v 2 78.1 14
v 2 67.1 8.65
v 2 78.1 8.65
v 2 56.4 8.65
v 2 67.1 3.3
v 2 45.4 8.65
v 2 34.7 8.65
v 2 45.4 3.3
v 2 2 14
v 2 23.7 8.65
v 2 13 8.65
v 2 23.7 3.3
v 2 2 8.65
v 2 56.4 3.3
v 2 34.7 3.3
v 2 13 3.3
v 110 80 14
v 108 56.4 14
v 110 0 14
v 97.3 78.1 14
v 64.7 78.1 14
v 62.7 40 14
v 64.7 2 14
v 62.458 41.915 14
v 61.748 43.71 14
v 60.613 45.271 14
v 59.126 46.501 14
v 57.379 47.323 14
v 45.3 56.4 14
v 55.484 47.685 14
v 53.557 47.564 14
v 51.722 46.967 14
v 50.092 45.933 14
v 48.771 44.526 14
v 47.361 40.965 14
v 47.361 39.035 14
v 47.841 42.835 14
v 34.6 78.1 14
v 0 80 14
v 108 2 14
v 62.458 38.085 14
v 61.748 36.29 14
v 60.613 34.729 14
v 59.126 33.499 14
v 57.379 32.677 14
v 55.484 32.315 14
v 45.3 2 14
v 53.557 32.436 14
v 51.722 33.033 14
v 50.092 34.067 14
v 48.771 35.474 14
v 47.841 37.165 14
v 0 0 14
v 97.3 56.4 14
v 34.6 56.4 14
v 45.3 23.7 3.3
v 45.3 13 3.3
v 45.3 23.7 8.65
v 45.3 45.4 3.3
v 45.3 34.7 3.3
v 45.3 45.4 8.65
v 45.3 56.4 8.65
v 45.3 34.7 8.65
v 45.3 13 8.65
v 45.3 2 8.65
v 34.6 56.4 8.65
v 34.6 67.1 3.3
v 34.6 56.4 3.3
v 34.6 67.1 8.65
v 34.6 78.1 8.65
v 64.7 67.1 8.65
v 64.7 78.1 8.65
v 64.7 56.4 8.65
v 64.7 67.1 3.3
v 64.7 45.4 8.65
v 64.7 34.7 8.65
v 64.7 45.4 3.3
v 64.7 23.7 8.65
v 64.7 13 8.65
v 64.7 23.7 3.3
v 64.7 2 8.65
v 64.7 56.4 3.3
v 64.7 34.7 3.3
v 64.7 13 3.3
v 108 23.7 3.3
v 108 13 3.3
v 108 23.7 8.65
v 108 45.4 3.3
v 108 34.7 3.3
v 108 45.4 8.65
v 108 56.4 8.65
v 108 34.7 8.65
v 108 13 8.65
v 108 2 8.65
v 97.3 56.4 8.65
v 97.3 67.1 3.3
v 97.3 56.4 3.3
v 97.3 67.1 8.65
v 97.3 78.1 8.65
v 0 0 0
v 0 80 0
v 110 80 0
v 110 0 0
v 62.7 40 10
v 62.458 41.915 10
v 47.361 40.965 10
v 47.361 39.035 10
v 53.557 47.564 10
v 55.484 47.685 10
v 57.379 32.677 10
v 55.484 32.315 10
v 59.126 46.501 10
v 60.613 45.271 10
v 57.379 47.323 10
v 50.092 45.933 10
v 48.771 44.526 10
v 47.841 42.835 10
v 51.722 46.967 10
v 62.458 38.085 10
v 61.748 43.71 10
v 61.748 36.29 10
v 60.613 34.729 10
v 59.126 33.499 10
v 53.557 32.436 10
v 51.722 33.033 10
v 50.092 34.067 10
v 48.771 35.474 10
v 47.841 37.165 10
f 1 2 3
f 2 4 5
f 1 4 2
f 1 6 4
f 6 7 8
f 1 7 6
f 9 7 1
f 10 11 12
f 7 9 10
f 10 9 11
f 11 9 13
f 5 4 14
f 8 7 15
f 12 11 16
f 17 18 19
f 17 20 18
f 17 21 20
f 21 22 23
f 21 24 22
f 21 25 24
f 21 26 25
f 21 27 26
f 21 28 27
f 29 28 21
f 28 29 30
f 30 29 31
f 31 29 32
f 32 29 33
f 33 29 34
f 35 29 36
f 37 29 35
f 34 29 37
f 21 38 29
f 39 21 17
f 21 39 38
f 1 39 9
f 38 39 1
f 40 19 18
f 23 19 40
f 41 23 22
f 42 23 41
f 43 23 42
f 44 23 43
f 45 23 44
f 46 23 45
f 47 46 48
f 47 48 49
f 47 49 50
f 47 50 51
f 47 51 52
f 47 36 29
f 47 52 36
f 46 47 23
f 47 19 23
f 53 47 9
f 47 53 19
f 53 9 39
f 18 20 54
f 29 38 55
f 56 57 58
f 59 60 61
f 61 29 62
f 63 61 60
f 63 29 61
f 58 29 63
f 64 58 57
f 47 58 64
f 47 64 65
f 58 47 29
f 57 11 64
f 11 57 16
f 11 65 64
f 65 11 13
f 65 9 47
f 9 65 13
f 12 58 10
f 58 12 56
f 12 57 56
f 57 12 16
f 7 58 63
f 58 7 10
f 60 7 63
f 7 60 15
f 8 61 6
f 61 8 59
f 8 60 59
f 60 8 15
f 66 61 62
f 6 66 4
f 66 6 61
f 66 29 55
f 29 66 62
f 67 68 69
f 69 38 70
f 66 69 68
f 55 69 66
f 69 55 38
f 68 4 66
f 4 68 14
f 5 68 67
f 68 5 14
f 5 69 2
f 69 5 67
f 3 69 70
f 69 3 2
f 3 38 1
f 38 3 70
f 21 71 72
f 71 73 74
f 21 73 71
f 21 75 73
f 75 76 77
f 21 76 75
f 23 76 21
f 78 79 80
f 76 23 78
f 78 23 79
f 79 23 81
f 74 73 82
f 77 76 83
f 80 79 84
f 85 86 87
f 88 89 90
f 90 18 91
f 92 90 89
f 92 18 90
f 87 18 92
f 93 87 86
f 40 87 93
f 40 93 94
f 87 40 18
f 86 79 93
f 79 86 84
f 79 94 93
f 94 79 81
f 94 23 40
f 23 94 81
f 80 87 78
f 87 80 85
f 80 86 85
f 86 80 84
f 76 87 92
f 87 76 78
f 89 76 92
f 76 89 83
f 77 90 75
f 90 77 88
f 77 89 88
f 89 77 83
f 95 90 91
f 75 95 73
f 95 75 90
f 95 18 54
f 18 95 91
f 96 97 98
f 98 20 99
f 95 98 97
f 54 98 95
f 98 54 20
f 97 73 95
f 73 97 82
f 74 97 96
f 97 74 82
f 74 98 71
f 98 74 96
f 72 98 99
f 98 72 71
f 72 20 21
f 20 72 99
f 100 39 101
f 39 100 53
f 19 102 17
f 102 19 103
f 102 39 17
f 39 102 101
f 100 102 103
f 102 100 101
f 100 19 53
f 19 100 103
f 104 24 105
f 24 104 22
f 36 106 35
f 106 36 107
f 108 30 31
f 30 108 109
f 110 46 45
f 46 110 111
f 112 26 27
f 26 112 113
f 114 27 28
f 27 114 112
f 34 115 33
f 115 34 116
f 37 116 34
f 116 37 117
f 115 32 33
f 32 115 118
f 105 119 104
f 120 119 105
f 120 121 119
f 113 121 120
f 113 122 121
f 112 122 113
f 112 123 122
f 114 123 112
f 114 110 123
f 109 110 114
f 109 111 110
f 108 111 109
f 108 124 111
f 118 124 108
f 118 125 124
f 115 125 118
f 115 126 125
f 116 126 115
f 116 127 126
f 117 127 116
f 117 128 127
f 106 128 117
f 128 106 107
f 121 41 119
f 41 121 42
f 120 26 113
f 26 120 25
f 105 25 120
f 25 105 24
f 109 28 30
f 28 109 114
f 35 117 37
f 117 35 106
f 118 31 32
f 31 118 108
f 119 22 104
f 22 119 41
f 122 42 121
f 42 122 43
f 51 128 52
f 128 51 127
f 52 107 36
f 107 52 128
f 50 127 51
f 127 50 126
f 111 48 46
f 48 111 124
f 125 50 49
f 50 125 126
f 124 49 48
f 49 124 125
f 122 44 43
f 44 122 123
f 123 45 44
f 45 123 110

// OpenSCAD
length = 110;
width = 80;
height = 14;
magnetPadding = 15;
magnetBaseInnerDiameter = 15.4;
magnetHeight = 4.0;



woodenCubeSide = 10.2 + .5;
woodenCubeBoxHeight = woodenCubeSide;
woodenCubeBoxWidth = woodenCubeSide;

wallThickness = 2;

fingerNotchSize = 11;
woodenCubeCount = 4;
woodenCubeBoxLength = woodenCubeSide * woodenCubeCount + .5;

shortWoodenCubeCount = 3;
shortWoodenCubeBoxLength = woodenCubeSide * shortWoodenCubeCount + .5;

        
        

    difference(){
        cube([length, width, height]);  
        translate([wallThickness, wallThickness, 0])
            WoodenCubeBoxes();
        translate([length - (wallThickness + woodenCubeBoxLength), wallThickness, 0])
            WoodenCubeBoxes();

        //magnet
        translate([
            length/2,
            width/2,
            height - magnetHeight])
            cylinder(magnetHeight, d=magnetBaseInnerDiameter);


    }
    
module WoodenCubeBoxes()
{
    translate([0,0, 0])
    {
        WoodenCubeBox();
    }
    translate([0,fingerNotchSize + woodenCubeSide, 0])
    {
        WoodenCubeBox();
    }
    translate([0,fingerNotchSize * 2 + woodenCubeSide * 2, 0])
    {
        ShortWoodenCubeBox();
    }
}

module WoodenCubeBox()
{
    translate([0, 0, height - (woodenCubeBoxHeight/2)])
        cube([woodenCubeBoxLength, fingerNotchSize, woodenCubeBoxHeight / 2]);
    translate([0, 0 + fingerNotchSize, height - woodenCubeBoxHeight])
        cube([woodenCubeBoxLength, woodenCubeBoxWidth, woodenCubeBoxHeight]);
    translate([0, 0 + fingerNotchSize + woodenCubeBoxWidth, height - (woodenCubeBoxHeight/2)])
        cube([woodenCubeBoxLength, fingerNotchSize, woodenCubeBoxHeight / 2]);
}

module ShortWoodenCubeBox()
{
    translate([0, 0, height - (woodenCubeBoxHeight/2)])
        cube([shortWoodenCubeBoxLength, fingerNotchSize, woodenCubeBoxHeight / 2]);
    translate([0, 0 + fingerNotchSize, height - woodenCubeBoxHeight])
        cube([shortWoodenCubeBoxLength, woodenCubeBoxWidth, woodenCubeBoxHeight]);
    translate([0, 0 + fingerNotchSize + woodenCubeBoxWidth, height - (woodenCubeBoxHeight/2)])
        cube([shortWoodenCubeBoxLength, fingerNotchSize, woodenCubeBoxHeight / 2]);
}
